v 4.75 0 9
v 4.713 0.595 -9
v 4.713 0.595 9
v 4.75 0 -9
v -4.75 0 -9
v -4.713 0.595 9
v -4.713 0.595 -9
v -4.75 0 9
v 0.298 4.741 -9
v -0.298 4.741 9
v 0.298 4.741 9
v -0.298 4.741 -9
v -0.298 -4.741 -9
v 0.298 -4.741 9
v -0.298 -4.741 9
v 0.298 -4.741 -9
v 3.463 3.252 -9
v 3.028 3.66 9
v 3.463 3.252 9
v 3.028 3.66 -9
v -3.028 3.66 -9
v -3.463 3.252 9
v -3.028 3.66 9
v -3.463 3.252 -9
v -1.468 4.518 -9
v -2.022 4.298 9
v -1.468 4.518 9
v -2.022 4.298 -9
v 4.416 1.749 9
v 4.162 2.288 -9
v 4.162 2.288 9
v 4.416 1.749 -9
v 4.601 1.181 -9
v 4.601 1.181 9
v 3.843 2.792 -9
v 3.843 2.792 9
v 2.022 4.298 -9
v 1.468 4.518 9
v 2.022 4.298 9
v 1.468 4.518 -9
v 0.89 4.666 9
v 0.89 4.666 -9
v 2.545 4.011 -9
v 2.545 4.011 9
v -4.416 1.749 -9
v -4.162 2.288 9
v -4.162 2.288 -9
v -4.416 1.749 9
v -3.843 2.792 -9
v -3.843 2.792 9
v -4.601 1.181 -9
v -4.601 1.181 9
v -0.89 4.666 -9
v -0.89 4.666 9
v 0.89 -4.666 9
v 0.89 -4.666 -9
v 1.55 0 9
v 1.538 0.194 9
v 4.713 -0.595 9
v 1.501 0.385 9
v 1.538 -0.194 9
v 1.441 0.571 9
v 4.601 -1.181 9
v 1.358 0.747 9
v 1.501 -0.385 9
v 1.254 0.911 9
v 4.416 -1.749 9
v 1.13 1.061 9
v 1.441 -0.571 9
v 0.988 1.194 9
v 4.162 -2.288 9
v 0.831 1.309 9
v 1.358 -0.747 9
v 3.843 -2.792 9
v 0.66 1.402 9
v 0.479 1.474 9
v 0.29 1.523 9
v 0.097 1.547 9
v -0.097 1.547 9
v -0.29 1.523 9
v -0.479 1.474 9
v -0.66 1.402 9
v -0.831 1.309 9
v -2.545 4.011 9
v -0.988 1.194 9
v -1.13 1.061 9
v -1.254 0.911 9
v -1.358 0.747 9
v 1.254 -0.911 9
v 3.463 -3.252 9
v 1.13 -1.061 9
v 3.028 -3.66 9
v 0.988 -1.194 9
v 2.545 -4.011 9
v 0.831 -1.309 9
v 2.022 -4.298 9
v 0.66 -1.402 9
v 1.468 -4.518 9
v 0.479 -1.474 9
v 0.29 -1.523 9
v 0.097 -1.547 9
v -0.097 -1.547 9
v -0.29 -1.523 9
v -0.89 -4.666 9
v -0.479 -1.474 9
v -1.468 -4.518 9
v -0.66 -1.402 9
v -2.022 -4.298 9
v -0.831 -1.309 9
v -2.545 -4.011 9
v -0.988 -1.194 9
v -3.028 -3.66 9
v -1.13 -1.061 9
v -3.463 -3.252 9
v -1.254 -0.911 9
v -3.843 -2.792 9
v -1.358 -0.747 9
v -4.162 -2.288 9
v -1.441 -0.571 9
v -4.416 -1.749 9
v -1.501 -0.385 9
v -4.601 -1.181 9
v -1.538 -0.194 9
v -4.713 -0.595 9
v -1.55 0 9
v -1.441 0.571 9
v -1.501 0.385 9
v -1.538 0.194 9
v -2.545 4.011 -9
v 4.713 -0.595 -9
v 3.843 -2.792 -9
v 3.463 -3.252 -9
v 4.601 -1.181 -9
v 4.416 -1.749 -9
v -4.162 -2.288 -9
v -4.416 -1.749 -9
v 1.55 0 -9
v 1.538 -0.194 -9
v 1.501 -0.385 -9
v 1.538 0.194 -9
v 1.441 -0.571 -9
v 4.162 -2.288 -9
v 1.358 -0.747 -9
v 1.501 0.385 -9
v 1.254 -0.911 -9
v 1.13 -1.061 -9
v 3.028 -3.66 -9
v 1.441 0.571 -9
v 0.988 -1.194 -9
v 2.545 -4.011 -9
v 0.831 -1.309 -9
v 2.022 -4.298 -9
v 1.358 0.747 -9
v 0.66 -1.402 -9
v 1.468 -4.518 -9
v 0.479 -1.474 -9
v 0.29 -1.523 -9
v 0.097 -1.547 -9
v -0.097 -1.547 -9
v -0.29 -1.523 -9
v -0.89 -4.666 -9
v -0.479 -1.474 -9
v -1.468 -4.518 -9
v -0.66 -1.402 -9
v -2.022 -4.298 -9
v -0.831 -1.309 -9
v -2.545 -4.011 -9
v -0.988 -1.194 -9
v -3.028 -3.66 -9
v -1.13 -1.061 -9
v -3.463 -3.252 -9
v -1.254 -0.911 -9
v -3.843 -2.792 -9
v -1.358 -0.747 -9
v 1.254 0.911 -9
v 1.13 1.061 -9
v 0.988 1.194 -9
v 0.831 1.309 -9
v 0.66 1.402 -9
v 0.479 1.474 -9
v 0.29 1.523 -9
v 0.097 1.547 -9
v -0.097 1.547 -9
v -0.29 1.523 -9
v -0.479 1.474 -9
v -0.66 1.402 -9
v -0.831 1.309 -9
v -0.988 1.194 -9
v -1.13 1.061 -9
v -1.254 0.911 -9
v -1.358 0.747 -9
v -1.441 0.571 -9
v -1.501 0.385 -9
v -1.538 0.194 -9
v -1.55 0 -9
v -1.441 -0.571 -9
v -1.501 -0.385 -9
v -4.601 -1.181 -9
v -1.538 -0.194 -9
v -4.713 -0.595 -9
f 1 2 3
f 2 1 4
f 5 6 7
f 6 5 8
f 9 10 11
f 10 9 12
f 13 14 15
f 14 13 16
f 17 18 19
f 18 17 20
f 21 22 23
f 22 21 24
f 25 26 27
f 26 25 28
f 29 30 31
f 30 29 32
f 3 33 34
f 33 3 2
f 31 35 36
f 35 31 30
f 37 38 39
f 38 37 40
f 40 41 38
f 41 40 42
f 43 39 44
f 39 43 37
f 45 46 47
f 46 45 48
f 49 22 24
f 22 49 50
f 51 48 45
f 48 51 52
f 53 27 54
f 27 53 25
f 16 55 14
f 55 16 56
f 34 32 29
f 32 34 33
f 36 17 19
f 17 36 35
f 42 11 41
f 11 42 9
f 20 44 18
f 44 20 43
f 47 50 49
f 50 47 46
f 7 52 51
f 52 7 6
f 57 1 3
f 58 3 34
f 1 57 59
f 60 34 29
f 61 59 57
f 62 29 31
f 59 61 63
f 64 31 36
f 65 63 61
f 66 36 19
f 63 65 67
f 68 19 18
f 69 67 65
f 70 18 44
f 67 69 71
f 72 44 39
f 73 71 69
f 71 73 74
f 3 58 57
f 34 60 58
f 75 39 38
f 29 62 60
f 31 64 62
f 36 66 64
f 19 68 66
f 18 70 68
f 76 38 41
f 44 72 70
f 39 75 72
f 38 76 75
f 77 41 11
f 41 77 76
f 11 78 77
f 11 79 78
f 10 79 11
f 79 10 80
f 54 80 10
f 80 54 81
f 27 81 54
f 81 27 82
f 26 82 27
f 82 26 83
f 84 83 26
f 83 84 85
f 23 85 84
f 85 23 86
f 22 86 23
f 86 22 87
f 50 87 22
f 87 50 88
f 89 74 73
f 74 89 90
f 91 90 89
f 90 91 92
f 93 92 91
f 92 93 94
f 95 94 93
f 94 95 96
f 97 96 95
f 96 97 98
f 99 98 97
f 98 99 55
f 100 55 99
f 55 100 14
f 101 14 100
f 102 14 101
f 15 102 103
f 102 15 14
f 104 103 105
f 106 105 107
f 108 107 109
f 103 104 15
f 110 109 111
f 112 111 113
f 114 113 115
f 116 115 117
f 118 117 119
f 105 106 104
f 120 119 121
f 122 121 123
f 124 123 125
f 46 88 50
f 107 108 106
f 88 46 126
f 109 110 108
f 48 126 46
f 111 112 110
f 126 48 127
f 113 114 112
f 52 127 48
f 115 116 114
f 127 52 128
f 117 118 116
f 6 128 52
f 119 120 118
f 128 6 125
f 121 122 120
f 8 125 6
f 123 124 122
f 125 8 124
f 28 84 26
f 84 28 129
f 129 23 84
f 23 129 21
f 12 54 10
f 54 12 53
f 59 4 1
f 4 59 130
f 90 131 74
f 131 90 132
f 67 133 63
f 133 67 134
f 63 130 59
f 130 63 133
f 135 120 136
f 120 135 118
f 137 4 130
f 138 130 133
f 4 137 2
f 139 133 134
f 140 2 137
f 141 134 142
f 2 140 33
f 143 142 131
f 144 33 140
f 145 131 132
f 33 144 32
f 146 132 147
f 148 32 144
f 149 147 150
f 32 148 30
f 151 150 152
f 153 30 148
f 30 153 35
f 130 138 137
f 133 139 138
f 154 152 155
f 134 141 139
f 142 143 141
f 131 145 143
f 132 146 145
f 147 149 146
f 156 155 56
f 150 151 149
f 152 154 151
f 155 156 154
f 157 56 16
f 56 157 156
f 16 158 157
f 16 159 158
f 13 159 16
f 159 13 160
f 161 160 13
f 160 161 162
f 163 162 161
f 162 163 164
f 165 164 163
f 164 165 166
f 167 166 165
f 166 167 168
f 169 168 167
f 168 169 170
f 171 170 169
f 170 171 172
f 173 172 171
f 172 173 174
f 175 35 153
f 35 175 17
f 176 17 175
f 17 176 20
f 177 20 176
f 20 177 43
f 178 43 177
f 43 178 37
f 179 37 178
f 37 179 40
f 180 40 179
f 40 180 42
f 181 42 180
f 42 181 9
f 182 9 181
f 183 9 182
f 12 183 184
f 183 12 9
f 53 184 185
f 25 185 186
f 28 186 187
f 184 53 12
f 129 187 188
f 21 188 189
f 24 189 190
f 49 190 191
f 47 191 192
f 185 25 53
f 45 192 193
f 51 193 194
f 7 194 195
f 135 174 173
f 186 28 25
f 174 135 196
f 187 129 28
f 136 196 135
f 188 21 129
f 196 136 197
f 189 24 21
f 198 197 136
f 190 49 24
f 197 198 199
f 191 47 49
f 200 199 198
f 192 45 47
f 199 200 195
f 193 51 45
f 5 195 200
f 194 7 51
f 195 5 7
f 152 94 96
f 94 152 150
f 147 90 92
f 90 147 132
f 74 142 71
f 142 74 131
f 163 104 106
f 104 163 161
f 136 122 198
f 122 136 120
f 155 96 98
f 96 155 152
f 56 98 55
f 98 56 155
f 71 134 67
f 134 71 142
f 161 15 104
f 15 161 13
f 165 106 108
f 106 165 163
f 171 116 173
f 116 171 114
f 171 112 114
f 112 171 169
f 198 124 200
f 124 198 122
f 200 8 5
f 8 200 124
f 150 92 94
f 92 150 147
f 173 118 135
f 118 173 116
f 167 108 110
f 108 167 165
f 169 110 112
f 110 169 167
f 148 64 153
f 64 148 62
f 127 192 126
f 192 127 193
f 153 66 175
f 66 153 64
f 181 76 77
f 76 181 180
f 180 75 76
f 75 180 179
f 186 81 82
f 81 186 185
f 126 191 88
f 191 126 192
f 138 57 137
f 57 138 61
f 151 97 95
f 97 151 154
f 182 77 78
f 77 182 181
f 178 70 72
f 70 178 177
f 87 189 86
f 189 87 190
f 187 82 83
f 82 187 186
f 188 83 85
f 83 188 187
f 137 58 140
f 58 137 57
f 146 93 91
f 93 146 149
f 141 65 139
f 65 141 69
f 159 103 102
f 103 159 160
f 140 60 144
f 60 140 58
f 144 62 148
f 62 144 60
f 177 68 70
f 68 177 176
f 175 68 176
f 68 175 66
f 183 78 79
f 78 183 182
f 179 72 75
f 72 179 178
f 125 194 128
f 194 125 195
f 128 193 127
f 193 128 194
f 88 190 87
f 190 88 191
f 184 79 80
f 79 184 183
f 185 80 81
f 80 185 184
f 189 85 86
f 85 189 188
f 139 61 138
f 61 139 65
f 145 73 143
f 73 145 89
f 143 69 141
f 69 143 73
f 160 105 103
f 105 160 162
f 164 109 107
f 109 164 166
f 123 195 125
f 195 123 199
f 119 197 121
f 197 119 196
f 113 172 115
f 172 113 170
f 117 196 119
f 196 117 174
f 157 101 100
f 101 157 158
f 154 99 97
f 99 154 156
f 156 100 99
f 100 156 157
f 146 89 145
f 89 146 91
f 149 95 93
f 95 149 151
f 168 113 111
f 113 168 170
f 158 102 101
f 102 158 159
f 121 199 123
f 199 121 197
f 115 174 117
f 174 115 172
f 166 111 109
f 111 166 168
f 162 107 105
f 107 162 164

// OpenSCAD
$fn = 50;


difference() {
	union() {
		translate(v = [0, 0, -9.0000000000]) {
			cylinder(h = 18, r = 4.7500000000);
		}
	}
	union() {
		translate(v = [0, 0, -100.0000000000]) {
			cylinder(h = 200, r = 1.5500000000);
		}
	}
}
